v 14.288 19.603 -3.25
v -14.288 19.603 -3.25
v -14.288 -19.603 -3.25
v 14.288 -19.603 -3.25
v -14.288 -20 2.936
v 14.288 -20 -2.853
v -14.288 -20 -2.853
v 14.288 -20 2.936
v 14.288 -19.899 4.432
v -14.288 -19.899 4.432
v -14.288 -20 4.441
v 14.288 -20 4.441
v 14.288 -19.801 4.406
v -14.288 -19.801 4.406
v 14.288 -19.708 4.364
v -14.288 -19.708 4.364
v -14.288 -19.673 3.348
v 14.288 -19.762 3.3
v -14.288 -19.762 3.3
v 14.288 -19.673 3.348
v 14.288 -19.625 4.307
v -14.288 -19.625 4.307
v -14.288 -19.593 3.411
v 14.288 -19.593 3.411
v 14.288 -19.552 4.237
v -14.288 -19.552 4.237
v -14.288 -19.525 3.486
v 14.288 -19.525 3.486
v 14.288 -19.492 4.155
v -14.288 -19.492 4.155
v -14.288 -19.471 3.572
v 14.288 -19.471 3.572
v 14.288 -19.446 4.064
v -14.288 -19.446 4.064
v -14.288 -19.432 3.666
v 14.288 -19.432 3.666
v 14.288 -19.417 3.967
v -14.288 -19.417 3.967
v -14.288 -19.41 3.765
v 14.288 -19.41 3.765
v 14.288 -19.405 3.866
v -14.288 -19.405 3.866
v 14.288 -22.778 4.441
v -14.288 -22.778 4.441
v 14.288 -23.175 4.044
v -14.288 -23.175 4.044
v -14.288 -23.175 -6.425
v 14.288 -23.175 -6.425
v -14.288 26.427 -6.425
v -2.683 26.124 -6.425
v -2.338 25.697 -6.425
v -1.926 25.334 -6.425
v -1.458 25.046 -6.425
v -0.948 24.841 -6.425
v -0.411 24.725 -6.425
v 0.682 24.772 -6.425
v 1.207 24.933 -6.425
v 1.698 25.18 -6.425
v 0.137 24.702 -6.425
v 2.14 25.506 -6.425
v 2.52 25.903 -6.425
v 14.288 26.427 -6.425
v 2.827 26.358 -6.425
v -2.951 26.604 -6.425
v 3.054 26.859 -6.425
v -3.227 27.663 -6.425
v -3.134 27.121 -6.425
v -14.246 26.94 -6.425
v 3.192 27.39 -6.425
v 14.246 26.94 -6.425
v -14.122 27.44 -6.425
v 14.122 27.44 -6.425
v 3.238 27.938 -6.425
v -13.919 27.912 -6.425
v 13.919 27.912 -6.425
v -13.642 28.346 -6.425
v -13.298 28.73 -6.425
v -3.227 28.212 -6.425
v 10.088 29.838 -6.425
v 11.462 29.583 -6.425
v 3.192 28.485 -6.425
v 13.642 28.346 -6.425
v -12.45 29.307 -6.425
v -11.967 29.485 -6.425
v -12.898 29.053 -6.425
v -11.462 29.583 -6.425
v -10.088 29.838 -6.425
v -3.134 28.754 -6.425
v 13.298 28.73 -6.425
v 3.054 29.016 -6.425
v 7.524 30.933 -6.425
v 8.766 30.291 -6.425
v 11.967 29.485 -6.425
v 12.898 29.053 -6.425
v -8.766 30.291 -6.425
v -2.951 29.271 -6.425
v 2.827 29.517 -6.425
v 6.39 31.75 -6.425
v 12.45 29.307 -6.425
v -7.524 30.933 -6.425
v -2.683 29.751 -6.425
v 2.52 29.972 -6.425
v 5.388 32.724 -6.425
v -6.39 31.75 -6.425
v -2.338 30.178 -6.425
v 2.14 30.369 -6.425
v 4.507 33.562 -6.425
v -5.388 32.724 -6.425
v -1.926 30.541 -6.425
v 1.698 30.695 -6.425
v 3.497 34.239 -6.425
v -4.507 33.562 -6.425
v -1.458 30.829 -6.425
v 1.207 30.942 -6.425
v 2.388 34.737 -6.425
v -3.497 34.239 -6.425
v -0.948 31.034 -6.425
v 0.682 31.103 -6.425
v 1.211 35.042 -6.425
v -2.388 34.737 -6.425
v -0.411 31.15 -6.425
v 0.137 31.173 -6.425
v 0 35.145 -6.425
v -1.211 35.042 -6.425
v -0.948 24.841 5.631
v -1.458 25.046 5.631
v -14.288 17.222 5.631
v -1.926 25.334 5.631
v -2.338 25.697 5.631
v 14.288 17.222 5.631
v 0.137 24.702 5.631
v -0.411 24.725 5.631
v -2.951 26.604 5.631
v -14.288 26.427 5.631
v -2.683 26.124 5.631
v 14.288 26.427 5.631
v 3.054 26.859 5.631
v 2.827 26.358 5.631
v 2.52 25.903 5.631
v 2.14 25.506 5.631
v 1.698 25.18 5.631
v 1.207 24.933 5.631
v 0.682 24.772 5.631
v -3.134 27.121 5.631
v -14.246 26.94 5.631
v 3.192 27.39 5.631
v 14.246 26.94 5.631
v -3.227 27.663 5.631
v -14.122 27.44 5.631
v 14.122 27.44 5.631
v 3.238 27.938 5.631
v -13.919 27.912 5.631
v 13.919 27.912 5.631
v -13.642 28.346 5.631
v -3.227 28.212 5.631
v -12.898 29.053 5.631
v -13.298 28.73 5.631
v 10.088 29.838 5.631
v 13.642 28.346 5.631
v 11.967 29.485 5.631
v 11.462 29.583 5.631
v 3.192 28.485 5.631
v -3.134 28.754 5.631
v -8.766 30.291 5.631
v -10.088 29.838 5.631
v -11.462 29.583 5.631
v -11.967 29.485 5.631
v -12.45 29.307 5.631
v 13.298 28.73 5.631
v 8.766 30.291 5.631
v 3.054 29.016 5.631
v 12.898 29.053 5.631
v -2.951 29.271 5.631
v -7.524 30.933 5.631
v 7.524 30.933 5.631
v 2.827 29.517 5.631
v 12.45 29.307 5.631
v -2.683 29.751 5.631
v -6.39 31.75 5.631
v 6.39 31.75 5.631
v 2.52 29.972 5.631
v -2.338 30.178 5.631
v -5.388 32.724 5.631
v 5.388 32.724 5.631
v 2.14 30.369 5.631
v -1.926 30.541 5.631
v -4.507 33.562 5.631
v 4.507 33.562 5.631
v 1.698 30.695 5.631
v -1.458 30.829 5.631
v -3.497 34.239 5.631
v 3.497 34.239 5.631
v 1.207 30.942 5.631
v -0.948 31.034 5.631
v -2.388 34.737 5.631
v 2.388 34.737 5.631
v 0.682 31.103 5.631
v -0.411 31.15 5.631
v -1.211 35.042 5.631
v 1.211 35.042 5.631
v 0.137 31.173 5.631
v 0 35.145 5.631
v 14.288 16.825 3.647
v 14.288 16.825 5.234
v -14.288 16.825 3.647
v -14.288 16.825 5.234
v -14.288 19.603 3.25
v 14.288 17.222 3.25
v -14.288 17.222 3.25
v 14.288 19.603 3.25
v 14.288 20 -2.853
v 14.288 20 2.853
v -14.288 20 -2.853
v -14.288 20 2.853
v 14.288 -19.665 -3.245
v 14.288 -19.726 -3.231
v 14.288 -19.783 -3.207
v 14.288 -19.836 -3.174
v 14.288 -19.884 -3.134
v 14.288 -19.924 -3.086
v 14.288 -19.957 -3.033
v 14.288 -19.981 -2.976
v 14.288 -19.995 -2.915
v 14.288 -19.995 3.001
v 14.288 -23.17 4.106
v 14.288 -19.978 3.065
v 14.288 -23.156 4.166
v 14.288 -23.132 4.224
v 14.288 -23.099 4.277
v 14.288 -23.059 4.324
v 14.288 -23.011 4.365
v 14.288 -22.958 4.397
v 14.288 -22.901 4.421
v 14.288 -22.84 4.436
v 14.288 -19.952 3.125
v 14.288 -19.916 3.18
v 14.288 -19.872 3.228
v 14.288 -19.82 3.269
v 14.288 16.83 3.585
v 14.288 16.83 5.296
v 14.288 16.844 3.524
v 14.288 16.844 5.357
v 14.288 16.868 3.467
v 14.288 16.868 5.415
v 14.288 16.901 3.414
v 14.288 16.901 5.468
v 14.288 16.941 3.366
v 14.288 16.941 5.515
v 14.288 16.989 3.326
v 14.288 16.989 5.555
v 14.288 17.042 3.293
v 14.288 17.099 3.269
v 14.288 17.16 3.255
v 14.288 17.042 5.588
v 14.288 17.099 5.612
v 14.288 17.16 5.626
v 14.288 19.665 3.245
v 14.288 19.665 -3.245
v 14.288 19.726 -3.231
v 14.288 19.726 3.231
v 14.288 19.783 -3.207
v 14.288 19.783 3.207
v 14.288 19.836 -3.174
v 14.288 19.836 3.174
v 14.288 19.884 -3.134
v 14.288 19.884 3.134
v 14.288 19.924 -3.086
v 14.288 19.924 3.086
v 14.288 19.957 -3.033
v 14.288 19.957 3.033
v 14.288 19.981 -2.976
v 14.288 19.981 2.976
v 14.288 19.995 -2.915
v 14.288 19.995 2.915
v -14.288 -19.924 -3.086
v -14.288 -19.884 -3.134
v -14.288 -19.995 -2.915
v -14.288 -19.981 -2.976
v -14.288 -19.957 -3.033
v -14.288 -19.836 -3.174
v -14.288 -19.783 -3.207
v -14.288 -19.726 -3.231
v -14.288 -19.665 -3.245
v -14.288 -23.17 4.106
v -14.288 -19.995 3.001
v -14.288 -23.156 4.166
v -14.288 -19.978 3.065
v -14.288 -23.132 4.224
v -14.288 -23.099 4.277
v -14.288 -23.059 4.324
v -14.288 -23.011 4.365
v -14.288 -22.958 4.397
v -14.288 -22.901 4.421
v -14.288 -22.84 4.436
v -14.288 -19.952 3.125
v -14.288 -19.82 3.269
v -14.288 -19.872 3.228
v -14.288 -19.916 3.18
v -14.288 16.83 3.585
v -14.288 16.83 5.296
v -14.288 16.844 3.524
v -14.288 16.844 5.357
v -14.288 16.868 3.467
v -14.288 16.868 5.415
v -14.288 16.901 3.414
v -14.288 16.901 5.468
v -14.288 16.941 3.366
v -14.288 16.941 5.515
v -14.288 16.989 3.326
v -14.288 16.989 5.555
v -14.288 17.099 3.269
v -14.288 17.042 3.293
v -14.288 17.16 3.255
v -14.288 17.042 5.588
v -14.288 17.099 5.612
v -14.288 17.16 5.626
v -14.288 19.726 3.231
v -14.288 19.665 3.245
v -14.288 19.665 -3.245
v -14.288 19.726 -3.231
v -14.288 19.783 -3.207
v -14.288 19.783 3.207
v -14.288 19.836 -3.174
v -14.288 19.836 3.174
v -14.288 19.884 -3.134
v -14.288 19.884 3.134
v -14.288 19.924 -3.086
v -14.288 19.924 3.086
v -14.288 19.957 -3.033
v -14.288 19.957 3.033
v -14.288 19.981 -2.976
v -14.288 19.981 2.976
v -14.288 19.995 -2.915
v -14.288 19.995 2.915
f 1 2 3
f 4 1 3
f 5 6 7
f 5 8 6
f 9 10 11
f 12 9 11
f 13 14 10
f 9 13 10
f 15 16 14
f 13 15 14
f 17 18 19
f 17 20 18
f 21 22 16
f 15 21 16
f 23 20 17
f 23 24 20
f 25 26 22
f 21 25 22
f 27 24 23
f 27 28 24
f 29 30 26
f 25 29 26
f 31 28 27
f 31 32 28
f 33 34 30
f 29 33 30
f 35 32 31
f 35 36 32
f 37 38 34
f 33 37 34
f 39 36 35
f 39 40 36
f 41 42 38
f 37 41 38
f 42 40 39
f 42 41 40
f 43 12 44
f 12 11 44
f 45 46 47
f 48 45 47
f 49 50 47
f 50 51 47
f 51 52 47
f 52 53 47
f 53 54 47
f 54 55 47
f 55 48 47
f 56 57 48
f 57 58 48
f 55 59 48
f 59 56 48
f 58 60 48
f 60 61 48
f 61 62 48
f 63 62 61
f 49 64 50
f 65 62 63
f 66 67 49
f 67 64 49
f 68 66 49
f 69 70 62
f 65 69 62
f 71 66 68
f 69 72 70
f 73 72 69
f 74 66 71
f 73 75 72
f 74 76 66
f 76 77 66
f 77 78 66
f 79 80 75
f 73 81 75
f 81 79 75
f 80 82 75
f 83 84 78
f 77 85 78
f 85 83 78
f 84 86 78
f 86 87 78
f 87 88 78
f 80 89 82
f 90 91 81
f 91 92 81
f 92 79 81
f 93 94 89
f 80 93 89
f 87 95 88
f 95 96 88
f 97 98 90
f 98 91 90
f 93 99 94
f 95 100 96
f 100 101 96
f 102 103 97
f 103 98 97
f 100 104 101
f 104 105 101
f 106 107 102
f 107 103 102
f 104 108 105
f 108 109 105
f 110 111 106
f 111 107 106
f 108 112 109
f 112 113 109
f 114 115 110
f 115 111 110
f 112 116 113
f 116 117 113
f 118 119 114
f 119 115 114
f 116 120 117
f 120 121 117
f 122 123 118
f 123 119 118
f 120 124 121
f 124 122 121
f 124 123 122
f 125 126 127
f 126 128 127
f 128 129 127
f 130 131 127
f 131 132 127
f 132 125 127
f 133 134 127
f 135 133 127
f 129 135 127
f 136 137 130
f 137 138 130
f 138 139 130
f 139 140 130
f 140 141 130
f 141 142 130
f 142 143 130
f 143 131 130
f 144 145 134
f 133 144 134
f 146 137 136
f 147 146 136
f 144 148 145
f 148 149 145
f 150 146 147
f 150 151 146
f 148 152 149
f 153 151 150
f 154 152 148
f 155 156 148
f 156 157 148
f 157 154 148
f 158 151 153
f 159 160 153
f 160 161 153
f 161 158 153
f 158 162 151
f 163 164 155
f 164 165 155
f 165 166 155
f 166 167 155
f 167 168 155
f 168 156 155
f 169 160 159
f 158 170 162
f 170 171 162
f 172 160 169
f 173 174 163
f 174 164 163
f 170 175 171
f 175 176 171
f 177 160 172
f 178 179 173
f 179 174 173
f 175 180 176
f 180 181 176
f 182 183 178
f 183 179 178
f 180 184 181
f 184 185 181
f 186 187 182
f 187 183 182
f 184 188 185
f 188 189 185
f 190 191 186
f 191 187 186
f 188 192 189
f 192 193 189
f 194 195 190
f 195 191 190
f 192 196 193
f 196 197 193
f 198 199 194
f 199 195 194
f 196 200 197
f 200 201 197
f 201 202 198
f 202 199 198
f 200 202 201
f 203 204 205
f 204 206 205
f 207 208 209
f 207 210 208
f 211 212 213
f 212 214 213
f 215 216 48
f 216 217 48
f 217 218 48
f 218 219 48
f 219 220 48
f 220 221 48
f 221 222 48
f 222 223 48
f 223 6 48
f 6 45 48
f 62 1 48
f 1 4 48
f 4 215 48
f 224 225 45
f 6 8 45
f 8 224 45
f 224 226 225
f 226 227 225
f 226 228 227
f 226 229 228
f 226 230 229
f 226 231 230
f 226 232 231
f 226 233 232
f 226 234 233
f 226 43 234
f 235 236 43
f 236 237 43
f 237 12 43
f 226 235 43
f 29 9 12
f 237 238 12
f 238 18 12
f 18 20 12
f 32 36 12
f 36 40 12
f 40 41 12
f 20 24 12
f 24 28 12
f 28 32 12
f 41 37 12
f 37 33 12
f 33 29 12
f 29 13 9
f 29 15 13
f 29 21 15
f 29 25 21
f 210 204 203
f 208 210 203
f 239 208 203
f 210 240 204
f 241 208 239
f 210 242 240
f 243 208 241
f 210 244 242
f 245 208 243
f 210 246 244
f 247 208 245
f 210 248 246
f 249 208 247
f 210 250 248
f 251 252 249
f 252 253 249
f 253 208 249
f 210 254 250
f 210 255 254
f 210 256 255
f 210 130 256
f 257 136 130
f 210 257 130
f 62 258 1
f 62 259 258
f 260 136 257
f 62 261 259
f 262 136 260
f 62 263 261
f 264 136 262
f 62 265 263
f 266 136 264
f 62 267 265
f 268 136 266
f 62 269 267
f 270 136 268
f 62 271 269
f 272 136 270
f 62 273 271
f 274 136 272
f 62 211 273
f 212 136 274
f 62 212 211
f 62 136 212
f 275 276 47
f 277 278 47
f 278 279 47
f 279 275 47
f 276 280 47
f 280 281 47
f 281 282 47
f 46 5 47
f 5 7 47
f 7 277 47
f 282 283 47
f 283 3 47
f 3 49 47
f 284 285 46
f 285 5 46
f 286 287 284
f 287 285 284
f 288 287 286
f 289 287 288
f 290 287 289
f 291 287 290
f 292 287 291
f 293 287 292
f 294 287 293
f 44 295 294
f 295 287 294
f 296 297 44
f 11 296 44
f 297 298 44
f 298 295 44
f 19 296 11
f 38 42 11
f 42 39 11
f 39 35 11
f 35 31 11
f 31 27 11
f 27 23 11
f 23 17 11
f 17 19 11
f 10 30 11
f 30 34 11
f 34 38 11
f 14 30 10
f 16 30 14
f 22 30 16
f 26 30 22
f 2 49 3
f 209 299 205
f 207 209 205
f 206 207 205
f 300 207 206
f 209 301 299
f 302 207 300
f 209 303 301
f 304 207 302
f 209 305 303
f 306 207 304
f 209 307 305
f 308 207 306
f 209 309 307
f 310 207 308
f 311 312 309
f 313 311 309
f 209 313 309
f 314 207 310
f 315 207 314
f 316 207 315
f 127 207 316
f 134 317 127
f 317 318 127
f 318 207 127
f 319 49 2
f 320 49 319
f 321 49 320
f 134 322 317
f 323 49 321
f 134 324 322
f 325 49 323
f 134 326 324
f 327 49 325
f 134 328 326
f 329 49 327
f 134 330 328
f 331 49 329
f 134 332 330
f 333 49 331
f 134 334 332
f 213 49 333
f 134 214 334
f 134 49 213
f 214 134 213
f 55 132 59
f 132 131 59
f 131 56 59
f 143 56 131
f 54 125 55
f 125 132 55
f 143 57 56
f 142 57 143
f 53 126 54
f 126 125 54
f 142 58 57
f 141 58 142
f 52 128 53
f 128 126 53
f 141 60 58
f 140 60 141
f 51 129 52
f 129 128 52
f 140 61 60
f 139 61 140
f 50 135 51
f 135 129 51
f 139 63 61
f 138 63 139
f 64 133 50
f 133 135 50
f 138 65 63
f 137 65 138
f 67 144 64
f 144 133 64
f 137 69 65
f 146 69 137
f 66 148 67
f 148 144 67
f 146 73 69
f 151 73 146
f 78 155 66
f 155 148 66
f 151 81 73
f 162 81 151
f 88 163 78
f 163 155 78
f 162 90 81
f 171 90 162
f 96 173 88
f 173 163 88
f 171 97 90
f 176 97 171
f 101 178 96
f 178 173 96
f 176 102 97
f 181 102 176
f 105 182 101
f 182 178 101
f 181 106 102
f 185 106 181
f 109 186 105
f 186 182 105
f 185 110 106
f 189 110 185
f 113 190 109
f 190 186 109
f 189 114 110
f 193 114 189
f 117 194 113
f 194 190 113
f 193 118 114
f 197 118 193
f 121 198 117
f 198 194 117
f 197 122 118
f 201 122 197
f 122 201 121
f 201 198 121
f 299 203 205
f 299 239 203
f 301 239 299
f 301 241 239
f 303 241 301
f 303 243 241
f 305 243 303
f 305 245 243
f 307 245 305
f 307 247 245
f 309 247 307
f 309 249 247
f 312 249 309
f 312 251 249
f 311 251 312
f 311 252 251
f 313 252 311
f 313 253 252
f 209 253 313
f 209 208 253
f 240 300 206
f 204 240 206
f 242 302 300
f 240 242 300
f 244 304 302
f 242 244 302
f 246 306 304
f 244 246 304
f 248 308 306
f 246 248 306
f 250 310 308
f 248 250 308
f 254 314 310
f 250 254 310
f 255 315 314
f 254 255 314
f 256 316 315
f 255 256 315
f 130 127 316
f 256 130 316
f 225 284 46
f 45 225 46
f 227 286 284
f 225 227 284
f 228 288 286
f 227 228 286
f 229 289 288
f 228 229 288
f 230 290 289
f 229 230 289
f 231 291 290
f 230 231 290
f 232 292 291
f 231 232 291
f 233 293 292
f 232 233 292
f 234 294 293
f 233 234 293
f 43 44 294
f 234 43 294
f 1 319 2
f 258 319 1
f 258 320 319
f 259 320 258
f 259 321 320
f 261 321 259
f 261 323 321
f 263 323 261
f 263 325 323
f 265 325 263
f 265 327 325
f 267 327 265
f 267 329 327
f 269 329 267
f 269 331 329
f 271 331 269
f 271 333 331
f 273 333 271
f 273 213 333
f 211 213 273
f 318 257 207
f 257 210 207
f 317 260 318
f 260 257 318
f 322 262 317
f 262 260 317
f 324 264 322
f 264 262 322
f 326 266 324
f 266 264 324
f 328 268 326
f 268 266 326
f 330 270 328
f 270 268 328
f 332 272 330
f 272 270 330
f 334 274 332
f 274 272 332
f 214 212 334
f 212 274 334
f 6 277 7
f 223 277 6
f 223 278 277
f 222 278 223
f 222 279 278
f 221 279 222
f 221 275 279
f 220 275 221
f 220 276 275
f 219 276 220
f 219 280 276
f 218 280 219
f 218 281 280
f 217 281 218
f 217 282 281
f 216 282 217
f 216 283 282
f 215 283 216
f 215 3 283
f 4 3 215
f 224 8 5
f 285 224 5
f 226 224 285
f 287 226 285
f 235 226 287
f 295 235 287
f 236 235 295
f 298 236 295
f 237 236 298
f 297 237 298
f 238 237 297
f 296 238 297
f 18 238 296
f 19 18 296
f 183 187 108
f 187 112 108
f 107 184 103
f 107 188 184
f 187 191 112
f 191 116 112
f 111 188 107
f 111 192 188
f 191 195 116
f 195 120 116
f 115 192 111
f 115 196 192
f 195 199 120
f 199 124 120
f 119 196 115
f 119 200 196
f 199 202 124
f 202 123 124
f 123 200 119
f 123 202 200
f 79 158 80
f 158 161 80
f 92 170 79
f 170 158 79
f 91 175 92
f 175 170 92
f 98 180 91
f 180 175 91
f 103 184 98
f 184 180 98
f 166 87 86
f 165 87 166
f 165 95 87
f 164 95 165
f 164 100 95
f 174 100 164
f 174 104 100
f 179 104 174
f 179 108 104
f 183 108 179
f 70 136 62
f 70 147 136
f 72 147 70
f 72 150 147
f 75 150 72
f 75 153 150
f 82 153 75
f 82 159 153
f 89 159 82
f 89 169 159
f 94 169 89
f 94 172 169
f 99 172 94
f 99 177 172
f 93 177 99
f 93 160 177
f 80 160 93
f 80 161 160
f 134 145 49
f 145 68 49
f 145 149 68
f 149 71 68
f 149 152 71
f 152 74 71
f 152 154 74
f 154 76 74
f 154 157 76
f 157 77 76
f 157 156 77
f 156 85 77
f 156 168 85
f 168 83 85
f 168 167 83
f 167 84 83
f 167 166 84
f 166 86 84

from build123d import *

# Parameters (mm, degrees)
BOSS_EXTRUDE1_DEPTH     = 14.2875
SKETCH3_W               = 28.575
SKETCH3_H               = 12.05625
BOSS_EXTRUDE2_DEPTH     = 12.7
SKETCH4_R               = 3.2385
CUT_EXTRUDE1_DEPTH      = 13.05625
FILLET1_R               = 0.396875
CUT_EXTRUDE2_DEPTH      = 1
CUT_EXTRUDE2_DEPTH_BACK = 13.05625
FILLET2_R               = 9.525
FILLET3_R               = 3.175


with BuildPart() as part:
    # Sketch2 → Boss-Extrude1 (new body, symmetric)
    with BuildSketch(Plane(origin=(0, 0, 0), x_dir=(0, 0, -1), z_dir=(1, 0, 0))):
        with BuildLine():
            Line((-3.25, 16.825), (-5.63125, 16.825))
            Line((-5.63125, 16.825), (-5.63125, 23.175))
            Line((-5.63125, 23.175), (6.425, 23.175))
            Line((6.425, 23.175), (6.425, -23.175))
            Line((6.425, -23.175), (-4.440625, -23.175))
            Line((-4.440625, -23.175), (-4.440625, -20))
            ThreePointArc((-4.440625, -20), (-3.8453125, -19.4046875), (-3.25, -20))
            Line((-3.25, -20), (3.25, -20))
            Line((3.25, -20), (3.25, 20))
            Line((3.25, 20), (-3.25, 20))
            Line((-3.25, 20), (-3.25, 16.825))
        make_face()
    extrude(amount=BOSS_EXTRUDE1_DEPTH, both=True)

    # Sketch3 → Boss-Extrude2 (add)
    with BuildSketch(Plane(origin=(0, 23.175, 0), x_dir=(1, 0, 0), z_dir=(0, 1, 0))):
        with Locations((0, 0.396875)):
            Rectangle(SKETCH3_W, SKETCH3_H)
    extrude(amount=BOSS_EXTRUDE2_DEPTH)

    # Sketch4 → Cut-Extrude1 (cut, through all)
    with BuildSketch(Plane.XY.offset(5.63125)):
        with Locations((0, 27.9375)):
            Circle(SKETCH4_R)
    extrude(amount=-CUT_EXTRUDE1_DEPTH, mode=Mode.SUBTRACT)

    # Fillet1
    fillet1_edges = [part.edges().sort_by_distance(p)[0] for p in [
        (0, 20, -3.25),
        (0, 20, 3.25),
        (0, 16.825, 3.25),
        (0, 16.825, 5.63125),
        (0, -23.175, 4.440625),
        (0, -20, 3.25),
        (0, -20, -3.25),
    ]]
    fillet(fillet1_edges, radius=FILLET1_R)

    # Sketch6 → Cut-Extrude2 (cut, two sides)
    with BuildSketch(Plane.XY.offset(5.63125)) as cut_extrude2_sk:
        with BuildLine():
            Line((-14.2875, 29.525), (-7.030241554, 29.525))
            ThreePointArc((-7.030241554, 29.525), (0, 35.14475), (7.030241554, 29.525))
            Line((7.030241554, 29.525), (14.2875, 29.525))
            Line((14.2875, 29.525), (14.2875, 35.875))
            Line((14.2875, 35.875), (-14.2875, 35.875))
            Line((-14.2875, 35.875), (-14.2875, 29.525))
        make_face()
    extrude(amount=CUT_EXTRUDE2_DEPTH, mode=Mode.SUBTRACT)
    extrude(cut_extrude2_sk.sketch, amount=-CUT_EXTRUDE2_DEPTH_BACK, mode=Mode.SUBTRACT)

    # Fillet2
    fillet2_edges = [part.edges().sort_by_distance(p)[0] for p in [
        (7.030241554, 29.525, -0.396875),
        (-7.030241554, 29.525, -0.396875),
    ]]
    fillet(fillet2_edges, radius=FILLET2_R)

    # Fillet3
    fillet3_edges = [part.edges().sort_by_distance(p)[0] for p in [
        (14.2875, 29.525, -0.396875),
        (-14.2875, 29.525, -0.396875),
    ]]
    fillet(fillet3_edges, radius=FILLET3_R)


solid = part.part
